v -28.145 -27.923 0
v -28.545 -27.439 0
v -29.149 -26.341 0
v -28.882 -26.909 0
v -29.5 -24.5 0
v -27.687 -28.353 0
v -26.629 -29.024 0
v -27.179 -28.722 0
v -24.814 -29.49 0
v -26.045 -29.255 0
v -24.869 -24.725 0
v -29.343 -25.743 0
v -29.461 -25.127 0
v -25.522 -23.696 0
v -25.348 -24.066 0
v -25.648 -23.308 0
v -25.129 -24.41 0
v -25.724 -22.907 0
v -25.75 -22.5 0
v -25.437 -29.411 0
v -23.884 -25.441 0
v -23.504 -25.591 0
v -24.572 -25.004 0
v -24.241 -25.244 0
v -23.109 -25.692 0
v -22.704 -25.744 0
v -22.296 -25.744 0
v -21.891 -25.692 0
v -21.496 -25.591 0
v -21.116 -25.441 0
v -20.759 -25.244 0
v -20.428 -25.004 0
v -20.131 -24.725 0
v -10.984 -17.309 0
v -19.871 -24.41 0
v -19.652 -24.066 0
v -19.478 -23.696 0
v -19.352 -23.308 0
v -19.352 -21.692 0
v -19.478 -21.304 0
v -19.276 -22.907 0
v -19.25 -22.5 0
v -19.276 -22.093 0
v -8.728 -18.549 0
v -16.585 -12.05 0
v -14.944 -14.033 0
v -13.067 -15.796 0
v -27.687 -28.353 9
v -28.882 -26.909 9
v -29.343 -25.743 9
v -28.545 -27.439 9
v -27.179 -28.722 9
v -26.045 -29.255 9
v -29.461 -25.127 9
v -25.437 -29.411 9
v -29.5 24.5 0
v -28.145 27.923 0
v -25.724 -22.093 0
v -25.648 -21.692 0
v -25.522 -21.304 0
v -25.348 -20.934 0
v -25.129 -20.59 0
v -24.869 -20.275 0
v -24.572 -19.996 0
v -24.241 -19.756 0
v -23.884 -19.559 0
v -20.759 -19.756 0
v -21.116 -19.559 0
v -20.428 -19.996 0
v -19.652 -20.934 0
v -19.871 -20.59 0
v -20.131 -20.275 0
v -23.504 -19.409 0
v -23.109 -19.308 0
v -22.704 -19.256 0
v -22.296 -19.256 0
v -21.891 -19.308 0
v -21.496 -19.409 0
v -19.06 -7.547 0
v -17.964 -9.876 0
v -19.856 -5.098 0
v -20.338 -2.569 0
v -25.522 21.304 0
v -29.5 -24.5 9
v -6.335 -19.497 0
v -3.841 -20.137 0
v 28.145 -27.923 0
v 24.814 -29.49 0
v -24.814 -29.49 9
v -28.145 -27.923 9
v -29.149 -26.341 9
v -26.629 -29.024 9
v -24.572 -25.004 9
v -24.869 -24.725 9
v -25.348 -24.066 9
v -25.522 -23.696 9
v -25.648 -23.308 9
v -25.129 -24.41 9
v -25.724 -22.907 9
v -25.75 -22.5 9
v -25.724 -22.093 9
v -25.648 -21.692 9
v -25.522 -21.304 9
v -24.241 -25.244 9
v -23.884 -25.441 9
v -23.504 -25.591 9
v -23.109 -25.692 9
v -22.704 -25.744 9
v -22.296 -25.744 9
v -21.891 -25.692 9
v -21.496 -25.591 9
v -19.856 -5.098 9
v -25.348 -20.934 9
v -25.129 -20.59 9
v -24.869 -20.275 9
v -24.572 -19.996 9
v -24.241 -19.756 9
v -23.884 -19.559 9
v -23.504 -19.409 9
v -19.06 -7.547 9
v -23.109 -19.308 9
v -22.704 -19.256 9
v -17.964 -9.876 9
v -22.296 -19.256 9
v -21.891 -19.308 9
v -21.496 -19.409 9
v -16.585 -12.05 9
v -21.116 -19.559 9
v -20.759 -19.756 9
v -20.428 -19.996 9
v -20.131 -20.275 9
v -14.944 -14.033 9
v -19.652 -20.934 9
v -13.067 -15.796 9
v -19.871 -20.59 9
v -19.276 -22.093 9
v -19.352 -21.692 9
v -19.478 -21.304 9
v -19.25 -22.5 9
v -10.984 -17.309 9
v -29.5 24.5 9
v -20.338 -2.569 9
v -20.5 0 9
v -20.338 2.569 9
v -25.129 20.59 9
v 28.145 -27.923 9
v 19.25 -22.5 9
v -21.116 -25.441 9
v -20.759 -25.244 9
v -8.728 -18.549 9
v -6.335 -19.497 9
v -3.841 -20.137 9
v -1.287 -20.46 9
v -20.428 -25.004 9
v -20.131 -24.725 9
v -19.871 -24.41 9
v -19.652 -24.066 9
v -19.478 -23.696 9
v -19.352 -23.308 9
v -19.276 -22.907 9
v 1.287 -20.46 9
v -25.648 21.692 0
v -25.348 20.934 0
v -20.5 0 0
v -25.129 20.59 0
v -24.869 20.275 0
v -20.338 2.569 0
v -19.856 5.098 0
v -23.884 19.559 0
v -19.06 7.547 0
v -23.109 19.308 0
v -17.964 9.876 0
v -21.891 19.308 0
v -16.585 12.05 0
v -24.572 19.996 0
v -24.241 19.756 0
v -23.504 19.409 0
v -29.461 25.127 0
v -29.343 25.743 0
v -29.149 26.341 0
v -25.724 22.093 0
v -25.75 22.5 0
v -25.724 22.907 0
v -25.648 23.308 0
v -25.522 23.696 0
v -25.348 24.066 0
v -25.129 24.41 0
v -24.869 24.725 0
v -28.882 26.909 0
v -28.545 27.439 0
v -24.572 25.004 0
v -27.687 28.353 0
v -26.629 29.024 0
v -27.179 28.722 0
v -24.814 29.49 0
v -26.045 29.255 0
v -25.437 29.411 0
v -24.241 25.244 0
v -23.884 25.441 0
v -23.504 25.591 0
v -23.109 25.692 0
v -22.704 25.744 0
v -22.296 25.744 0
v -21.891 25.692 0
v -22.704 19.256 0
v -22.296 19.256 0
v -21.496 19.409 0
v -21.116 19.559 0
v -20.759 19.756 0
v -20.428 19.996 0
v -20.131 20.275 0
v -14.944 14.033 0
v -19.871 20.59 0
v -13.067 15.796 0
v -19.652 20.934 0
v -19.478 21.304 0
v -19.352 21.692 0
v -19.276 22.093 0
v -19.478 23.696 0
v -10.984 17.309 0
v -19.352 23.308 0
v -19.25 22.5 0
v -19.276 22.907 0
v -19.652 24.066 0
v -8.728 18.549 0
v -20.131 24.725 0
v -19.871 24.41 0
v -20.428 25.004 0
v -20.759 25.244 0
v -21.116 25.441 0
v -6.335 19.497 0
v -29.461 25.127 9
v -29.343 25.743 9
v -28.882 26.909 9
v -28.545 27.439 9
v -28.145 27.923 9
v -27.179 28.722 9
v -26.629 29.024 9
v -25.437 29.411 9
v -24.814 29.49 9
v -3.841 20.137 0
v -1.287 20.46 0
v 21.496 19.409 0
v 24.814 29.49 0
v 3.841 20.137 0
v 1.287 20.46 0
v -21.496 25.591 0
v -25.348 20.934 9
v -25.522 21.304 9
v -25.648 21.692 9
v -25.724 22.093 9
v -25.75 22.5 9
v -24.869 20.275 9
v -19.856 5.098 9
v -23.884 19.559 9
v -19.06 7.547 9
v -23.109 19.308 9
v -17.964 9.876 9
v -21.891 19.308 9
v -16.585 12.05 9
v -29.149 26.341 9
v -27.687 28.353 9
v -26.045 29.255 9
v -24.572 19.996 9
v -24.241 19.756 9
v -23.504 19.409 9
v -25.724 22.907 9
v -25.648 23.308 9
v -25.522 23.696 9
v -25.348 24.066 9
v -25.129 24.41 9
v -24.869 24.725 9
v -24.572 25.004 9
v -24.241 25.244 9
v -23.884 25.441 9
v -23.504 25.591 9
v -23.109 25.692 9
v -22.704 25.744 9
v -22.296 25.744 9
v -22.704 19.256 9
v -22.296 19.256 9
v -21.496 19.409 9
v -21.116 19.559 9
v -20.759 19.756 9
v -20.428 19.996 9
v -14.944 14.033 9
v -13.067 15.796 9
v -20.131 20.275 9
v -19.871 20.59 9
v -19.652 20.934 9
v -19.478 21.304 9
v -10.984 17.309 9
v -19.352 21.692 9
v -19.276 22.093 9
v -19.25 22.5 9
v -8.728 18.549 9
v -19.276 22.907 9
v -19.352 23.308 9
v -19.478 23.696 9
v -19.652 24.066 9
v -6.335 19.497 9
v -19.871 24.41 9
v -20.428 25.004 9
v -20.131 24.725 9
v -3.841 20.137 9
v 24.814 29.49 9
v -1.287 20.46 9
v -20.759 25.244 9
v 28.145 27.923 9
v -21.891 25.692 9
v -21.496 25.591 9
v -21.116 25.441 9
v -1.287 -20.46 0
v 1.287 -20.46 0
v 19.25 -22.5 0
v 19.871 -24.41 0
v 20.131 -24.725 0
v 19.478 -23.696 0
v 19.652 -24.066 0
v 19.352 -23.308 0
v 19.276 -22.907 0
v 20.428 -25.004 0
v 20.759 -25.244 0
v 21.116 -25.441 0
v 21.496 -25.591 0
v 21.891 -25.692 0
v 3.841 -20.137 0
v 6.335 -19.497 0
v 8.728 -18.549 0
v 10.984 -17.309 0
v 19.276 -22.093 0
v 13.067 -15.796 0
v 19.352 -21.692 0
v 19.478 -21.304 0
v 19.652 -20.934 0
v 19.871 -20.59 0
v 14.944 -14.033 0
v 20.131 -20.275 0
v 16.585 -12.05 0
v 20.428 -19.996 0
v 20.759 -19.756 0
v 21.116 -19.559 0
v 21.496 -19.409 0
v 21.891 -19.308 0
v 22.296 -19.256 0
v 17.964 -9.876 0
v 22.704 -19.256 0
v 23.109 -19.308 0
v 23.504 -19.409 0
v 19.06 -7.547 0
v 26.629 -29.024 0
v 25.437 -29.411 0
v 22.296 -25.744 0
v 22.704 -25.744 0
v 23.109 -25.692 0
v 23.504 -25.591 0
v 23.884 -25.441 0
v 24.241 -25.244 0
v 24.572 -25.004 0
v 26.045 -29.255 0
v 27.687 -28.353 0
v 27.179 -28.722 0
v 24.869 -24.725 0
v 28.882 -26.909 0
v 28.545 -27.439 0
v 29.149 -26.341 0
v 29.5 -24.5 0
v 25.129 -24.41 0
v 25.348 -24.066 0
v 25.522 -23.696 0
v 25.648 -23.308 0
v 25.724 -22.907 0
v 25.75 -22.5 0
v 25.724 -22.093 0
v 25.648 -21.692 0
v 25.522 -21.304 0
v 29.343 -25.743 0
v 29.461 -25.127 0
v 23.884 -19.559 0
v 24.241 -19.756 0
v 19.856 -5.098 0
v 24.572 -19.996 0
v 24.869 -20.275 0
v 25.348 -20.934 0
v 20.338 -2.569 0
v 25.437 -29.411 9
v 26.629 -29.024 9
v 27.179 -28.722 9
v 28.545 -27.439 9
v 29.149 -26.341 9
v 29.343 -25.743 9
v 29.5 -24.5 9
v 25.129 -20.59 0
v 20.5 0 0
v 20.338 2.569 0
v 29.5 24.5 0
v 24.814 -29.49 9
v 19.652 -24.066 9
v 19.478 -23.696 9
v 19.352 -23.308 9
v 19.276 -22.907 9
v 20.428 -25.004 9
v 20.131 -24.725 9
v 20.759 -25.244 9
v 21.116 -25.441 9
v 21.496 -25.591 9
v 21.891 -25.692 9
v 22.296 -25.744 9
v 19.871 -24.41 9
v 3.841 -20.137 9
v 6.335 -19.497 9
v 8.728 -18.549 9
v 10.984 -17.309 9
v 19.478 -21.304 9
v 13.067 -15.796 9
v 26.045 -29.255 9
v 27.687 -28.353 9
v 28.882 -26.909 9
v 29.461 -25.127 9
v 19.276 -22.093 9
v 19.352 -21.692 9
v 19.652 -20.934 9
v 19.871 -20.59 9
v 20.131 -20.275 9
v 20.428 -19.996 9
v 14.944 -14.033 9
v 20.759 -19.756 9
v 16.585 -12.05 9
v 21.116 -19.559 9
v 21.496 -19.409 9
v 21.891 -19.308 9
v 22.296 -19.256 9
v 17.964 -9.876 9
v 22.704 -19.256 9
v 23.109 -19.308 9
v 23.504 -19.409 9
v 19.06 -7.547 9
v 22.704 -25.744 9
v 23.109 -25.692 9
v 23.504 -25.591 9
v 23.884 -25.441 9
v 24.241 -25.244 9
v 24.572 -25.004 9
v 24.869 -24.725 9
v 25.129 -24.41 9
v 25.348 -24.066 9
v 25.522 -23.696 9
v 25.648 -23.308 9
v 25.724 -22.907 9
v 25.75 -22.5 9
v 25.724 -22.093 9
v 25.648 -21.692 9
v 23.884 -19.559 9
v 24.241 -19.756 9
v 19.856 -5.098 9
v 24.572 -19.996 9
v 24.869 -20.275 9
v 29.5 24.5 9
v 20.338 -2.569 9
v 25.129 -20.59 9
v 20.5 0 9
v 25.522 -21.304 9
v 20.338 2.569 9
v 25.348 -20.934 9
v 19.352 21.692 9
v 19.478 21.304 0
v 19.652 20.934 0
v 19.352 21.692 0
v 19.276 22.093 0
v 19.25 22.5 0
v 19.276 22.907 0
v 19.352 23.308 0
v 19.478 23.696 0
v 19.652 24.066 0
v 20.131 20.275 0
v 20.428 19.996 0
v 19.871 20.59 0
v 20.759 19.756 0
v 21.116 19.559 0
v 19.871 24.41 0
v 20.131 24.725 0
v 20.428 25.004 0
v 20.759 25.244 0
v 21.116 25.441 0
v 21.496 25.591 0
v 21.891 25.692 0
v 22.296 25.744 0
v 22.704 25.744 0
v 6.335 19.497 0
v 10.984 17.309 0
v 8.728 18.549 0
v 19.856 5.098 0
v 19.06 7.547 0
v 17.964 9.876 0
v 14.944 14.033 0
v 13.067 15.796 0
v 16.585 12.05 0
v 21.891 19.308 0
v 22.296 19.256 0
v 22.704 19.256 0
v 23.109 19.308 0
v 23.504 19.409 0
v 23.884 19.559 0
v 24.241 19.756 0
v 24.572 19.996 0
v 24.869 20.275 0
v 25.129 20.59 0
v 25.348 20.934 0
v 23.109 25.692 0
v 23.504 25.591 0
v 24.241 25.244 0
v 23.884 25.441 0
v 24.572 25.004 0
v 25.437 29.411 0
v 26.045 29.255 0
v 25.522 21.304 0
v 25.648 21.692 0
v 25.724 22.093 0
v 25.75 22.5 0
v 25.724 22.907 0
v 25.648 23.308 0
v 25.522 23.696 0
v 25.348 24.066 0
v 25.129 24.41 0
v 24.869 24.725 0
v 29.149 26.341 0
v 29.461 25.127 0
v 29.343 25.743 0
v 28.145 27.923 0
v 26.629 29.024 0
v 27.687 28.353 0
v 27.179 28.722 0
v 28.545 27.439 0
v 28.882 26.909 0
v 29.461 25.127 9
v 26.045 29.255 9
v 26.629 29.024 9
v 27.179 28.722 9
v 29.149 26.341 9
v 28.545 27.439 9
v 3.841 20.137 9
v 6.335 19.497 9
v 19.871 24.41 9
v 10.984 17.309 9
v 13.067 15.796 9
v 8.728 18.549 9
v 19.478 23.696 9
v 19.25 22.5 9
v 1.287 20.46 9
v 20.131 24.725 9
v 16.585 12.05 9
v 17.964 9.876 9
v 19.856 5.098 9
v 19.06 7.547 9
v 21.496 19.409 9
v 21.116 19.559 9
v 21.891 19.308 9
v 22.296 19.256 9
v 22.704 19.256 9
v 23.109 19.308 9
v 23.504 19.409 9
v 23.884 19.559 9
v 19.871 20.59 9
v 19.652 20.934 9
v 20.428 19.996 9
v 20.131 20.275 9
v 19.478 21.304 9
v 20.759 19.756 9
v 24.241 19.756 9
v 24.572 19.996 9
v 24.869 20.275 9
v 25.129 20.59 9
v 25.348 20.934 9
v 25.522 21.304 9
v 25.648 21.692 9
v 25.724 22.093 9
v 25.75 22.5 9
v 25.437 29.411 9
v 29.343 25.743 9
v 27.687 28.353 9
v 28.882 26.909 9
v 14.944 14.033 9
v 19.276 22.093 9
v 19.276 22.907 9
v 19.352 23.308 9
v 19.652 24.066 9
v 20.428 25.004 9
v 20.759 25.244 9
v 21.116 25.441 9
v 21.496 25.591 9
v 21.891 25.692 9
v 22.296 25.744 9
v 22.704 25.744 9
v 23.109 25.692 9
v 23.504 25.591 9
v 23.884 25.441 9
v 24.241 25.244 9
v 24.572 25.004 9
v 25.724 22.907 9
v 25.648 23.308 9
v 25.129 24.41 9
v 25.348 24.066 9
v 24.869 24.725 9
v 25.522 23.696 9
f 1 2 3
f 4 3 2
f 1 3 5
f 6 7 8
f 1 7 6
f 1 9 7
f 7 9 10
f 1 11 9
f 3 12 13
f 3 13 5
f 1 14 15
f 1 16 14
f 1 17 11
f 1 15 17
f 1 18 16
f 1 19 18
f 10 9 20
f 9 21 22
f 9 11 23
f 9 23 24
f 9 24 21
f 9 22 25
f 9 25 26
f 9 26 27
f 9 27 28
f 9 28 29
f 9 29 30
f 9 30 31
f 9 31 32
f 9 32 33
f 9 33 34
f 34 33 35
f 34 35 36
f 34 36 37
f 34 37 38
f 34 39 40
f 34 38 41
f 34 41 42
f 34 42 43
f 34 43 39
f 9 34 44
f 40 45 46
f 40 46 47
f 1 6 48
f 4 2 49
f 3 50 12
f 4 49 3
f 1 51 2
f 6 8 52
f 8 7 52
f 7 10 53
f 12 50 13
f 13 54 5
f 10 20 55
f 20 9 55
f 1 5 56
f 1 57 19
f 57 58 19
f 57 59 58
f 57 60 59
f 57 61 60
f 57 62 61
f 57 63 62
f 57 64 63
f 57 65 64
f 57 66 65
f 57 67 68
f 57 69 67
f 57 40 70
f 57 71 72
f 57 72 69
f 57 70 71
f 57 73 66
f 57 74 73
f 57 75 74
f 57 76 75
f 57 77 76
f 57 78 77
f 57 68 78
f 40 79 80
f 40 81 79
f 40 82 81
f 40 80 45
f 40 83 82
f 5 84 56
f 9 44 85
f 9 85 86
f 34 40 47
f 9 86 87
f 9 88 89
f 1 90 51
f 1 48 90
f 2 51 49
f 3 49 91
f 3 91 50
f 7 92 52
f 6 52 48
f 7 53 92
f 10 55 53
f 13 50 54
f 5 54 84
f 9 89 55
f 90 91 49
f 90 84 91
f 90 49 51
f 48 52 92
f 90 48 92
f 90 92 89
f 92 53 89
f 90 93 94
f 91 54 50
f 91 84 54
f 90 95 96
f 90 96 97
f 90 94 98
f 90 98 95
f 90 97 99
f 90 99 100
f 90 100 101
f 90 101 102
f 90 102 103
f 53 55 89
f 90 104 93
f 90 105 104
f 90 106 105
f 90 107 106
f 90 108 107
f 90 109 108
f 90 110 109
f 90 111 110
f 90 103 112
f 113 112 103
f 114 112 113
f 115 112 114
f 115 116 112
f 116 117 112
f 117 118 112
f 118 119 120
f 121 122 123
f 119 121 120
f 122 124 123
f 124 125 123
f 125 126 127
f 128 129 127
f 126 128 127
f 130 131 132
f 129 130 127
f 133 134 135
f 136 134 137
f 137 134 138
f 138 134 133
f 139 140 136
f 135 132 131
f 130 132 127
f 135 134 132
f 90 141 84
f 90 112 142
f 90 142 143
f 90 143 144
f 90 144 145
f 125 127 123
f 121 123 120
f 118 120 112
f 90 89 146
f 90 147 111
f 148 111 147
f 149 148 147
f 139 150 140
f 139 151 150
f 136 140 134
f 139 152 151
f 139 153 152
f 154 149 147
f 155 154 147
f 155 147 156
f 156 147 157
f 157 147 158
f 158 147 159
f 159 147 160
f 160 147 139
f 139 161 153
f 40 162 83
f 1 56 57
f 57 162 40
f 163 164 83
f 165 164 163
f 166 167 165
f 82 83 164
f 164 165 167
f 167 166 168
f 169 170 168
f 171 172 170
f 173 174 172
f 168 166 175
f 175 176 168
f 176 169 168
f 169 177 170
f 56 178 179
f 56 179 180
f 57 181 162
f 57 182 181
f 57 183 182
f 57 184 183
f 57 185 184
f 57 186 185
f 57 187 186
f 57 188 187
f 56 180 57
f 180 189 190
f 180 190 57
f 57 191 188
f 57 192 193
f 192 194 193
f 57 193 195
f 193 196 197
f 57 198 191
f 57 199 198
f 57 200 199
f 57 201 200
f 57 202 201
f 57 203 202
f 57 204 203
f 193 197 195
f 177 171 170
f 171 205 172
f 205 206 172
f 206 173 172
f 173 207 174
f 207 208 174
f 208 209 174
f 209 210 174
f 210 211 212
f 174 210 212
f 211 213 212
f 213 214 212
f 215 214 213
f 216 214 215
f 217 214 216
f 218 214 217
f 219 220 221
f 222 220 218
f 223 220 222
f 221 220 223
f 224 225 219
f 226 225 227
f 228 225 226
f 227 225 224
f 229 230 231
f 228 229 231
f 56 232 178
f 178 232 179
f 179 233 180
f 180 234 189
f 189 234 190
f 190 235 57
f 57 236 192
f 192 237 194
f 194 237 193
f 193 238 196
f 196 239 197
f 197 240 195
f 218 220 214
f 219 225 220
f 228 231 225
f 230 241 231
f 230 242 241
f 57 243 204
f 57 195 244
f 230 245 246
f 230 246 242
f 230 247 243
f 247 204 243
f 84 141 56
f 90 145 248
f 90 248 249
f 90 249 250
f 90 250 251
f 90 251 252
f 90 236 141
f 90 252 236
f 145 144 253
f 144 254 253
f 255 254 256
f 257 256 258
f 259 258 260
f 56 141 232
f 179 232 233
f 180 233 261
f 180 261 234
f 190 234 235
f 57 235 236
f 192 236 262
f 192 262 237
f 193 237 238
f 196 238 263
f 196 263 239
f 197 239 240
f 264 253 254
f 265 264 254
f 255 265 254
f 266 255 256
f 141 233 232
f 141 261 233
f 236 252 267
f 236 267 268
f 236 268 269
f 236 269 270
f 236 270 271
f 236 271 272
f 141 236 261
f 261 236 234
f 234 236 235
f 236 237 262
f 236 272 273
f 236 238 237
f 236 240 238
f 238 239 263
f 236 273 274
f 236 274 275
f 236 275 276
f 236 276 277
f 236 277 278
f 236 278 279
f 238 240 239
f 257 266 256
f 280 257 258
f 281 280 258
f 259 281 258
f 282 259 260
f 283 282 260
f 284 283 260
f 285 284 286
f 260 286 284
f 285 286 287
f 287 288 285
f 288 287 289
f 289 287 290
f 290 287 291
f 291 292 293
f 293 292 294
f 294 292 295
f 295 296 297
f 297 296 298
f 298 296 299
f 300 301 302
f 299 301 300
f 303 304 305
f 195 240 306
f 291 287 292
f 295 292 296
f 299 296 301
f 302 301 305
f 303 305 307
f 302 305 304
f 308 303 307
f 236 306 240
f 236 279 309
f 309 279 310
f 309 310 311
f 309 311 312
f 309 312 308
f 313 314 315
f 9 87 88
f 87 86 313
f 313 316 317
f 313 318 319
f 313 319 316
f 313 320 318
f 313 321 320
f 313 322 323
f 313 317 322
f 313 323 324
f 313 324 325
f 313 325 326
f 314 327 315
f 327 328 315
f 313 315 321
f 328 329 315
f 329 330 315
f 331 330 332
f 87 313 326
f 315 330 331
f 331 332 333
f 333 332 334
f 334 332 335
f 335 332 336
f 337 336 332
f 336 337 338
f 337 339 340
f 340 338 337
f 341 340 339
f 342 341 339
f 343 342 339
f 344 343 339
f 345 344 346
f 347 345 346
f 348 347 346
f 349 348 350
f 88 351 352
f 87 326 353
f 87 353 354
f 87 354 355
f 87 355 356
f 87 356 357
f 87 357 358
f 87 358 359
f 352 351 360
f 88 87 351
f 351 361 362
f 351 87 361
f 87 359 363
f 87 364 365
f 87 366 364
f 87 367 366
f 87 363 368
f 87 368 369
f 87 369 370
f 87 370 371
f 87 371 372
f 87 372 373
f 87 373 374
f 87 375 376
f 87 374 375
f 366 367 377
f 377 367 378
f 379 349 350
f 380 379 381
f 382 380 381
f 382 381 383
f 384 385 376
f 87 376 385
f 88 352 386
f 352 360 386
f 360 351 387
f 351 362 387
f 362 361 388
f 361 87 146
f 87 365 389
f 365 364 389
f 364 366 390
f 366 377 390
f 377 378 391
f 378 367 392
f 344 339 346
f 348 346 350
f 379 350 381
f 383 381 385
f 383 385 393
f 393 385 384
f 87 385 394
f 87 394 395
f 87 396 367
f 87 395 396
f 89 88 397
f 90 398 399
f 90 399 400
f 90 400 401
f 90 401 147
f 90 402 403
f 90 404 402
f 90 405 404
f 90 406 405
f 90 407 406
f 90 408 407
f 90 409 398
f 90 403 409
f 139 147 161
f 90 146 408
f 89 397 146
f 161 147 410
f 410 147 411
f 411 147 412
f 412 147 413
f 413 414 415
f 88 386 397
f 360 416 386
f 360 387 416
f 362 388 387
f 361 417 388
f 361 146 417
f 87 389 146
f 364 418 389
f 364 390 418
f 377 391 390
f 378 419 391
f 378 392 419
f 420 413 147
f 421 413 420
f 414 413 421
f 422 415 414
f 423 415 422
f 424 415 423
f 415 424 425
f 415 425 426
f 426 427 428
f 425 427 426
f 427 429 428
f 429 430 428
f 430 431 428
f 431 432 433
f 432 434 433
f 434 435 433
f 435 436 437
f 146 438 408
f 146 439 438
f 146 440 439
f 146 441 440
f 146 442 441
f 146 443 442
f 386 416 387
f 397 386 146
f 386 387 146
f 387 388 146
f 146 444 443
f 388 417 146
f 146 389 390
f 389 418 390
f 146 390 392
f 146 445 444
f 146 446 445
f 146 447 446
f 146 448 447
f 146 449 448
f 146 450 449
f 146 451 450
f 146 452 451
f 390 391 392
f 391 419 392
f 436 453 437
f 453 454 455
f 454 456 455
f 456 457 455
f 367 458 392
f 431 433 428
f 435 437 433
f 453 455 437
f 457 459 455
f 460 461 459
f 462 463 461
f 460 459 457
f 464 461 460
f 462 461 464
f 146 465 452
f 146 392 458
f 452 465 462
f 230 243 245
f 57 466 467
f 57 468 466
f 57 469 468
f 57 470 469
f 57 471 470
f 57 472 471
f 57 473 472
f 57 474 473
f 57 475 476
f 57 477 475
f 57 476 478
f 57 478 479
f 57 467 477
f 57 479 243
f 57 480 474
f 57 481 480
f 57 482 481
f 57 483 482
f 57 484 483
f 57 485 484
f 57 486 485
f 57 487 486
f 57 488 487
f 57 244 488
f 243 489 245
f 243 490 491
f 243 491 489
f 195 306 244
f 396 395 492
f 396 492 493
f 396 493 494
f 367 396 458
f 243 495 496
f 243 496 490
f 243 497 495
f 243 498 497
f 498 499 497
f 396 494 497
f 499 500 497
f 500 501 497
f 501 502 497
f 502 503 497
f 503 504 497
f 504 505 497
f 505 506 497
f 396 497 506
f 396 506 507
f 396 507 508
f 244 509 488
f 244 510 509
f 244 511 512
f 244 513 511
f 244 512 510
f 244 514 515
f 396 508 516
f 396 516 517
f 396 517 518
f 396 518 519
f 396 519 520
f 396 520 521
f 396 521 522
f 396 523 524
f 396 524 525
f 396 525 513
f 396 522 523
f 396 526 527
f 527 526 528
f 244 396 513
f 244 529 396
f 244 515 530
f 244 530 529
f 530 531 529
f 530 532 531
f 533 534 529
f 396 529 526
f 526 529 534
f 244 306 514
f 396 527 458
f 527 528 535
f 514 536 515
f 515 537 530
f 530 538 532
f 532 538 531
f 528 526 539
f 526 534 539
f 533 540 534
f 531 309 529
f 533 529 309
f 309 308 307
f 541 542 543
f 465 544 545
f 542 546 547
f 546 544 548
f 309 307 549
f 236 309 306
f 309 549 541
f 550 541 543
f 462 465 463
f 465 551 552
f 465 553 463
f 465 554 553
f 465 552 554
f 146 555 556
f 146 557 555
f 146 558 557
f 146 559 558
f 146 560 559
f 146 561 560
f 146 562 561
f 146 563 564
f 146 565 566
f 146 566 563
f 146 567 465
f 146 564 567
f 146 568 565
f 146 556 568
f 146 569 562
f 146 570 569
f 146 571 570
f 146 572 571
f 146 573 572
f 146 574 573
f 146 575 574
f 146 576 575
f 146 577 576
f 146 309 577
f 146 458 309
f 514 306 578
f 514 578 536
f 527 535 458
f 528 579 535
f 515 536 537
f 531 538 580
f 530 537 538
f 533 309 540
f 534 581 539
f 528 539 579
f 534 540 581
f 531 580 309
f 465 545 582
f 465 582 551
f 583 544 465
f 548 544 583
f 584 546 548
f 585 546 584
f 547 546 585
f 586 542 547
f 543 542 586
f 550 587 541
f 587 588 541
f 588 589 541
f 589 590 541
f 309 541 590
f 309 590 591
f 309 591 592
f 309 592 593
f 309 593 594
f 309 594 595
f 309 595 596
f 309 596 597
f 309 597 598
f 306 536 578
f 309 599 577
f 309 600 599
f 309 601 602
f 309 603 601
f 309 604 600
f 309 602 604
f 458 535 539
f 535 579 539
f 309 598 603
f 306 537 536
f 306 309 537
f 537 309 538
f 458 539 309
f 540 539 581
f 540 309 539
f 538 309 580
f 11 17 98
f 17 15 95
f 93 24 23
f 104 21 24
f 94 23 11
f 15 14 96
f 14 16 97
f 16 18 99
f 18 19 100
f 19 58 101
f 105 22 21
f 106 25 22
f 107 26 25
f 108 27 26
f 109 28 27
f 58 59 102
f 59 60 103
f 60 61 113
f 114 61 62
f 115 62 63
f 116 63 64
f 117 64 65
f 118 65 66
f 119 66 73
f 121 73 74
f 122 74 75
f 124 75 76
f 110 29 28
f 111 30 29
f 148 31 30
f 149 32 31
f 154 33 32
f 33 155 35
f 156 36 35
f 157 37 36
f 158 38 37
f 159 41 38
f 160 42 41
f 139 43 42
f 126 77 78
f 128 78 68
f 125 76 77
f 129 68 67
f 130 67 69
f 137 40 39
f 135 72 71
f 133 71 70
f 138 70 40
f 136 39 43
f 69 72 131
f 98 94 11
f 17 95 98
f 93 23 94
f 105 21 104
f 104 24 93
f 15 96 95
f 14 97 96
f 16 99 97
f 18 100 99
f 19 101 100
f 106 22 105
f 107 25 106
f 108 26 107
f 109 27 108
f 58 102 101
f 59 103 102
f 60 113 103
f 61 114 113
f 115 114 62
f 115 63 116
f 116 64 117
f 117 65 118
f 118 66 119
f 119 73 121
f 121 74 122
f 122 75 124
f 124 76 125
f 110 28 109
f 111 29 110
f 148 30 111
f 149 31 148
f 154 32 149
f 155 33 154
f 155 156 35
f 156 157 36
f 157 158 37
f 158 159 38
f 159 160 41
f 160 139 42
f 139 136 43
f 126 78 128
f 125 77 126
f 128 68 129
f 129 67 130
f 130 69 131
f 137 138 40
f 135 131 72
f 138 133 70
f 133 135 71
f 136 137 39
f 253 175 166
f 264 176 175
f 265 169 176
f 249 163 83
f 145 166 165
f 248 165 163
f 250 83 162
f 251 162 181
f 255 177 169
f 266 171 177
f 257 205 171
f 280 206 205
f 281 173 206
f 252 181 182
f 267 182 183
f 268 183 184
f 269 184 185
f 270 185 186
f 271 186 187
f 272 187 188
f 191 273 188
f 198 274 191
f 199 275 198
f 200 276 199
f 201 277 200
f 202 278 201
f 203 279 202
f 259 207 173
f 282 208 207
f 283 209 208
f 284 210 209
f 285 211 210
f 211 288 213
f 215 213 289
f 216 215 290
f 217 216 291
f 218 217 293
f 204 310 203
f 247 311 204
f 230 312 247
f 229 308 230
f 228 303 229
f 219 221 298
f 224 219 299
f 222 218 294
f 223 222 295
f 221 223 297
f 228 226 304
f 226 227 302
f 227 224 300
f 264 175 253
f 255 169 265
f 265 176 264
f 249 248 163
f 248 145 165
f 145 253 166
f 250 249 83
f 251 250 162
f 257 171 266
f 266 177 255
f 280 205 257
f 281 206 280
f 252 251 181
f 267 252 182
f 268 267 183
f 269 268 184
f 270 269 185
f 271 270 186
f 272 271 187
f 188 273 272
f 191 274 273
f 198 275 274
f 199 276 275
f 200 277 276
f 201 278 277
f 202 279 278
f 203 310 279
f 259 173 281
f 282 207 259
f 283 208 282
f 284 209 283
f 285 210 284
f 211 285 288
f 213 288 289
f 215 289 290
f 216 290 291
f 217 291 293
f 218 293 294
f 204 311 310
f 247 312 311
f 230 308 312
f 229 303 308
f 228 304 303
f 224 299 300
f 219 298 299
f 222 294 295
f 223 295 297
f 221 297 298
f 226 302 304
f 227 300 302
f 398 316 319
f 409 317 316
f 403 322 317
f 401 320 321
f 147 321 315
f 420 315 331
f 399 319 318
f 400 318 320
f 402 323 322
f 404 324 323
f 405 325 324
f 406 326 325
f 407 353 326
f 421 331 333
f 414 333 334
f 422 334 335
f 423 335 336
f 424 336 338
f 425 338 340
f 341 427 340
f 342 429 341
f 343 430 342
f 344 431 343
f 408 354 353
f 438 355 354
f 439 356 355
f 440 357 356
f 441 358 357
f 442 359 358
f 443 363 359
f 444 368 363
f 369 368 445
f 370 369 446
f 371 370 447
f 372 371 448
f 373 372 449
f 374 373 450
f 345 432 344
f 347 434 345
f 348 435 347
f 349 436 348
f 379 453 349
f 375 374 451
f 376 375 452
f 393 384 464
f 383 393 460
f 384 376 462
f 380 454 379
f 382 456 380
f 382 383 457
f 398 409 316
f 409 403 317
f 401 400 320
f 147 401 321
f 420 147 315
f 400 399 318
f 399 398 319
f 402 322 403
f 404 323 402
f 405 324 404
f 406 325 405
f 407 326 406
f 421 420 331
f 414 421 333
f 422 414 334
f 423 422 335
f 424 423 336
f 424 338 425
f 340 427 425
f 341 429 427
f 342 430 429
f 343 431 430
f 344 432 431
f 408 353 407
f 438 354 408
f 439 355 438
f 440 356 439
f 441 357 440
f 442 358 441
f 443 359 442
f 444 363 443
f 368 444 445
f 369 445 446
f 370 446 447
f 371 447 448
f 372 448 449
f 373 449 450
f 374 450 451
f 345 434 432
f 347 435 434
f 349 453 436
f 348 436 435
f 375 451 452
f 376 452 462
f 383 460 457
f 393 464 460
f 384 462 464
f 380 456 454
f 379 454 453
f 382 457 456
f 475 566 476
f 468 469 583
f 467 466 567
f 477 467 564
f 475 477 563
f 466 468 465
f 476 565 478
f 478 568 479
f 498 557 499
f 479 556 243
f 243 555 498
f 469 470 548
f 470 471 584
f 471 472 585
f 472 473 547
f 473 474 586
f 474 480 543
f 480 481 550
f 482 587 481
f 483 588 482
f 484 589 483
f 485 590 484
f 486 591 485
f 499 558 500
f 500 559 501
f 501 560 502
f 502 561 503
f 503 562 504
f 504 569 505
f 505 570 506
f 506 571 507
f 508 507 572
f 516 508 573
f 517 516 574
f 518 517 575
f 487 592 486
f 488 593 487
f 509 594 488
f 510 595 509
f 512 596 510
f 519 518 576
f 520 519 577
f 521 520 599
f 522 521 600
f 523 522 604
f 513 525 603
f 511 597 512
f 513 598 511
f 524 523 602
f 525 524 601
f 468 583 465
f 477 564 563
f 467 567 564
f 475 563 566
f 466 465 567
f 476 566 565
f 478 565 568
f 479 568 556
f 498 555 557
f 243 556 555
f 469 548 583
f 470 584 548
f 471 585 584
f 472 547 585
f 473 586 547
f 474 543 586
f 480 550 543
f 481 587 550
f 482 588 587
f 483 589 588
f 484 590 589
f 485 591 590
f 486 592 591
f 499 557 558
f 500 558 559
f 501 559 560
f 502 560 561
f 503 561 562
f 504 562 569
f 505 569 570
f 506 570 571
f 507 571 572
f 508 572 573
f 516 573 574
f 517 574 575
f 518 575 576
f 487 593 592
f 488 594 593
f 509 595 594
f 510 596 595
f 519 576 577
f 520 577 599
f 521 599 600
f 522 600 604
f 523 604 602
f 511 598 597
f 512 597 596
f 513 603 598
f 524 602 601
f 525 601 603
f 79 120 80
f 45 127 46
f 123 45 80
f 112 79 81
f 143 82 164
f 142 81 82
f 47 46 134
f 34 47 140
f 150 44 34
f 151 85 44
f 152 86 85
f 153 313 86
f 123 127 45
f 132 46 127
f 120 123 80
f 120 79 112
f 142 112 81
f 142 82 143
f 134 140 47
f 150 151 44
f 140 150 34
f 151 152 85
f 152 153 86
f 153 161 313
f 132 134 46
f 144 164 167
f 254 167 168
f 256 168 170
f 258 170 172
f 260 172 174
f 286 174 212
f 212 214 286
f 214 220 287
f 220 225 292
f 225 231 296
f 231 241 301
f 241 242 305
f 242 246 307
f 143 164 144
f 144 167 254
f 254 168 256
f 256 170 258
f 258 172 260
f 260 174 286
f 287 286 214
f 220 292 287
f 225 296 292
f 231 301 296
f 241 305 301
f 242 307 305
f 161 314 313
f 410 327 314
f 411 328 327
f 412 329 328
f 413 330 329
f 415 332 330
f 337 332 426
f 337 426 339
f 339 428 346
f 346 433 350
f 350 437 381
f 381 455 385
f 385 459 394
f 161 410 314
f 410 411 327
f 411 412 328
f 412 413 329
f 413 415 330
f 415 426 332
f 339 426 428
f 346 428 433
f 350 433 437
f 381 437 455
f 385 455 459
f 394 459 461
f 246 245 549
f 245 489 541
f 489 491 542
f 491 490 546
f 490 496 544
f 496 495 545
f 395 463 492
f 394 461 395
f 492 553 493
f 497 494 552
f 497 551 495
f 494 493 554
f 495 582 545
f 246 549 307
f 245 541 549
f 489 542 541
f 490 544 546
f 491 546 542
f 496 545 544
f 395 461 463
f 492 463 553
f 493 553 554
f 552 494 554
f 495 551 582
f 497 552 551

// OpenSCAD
$fn = 50;

difference() {
	union() {
		hull() {
			translate(v = [-24.5, 24.5, 0]) {
				cylinder(h = 9, r = 5);
			}
			translate(v = [24.5, 24.5, 0]) {
				cylinder(h = 9, r = 5);
			}
			translate(v = [-24.5, -24.5, 0]) {
				cylinder(h = 9, r = 5);
			}
			translate(v = [24.5, -24.5, 0]) {
				cylinder(h = 9, r = 5);
			}
		}
	}
	union() {
		translate(v = [-22.5, -22.5, -100.0]) {
			cylinder(h = 200, r = 3.25);
		}
		translate(v = [-22.5, 22.5, -100.0]) {
			cylinder(h = 200, r = 3.25);
		}
		translate(v = [22.5, -22.5, -100.0]) {
			cylinder(h = 200, r = 3.25);
		}
		translate(v = [22.5, 22.5, -100.0]) {
			cylinder(h = 200, r = 3.25);
		}
		translate(v = [-22.5, -22.5, -100.0]) {
			cylinder(h = 200, r = 1.8);
		}
		translate(v = [-22.5, 22.5, -100.0]) {
			cylinder(h = 200, r = 1.8);
		}
		translate(v = [22.5, -22.5, -100.0]) {
			cylinder(h = 200, r = 1.8);
		}
		translate(v = [22.5, 22.5, -100.0]) {
			cylinder(h = 200, r = 1.8);
		}
		cylinder(h = 9, r = 20.5);
	}
}
